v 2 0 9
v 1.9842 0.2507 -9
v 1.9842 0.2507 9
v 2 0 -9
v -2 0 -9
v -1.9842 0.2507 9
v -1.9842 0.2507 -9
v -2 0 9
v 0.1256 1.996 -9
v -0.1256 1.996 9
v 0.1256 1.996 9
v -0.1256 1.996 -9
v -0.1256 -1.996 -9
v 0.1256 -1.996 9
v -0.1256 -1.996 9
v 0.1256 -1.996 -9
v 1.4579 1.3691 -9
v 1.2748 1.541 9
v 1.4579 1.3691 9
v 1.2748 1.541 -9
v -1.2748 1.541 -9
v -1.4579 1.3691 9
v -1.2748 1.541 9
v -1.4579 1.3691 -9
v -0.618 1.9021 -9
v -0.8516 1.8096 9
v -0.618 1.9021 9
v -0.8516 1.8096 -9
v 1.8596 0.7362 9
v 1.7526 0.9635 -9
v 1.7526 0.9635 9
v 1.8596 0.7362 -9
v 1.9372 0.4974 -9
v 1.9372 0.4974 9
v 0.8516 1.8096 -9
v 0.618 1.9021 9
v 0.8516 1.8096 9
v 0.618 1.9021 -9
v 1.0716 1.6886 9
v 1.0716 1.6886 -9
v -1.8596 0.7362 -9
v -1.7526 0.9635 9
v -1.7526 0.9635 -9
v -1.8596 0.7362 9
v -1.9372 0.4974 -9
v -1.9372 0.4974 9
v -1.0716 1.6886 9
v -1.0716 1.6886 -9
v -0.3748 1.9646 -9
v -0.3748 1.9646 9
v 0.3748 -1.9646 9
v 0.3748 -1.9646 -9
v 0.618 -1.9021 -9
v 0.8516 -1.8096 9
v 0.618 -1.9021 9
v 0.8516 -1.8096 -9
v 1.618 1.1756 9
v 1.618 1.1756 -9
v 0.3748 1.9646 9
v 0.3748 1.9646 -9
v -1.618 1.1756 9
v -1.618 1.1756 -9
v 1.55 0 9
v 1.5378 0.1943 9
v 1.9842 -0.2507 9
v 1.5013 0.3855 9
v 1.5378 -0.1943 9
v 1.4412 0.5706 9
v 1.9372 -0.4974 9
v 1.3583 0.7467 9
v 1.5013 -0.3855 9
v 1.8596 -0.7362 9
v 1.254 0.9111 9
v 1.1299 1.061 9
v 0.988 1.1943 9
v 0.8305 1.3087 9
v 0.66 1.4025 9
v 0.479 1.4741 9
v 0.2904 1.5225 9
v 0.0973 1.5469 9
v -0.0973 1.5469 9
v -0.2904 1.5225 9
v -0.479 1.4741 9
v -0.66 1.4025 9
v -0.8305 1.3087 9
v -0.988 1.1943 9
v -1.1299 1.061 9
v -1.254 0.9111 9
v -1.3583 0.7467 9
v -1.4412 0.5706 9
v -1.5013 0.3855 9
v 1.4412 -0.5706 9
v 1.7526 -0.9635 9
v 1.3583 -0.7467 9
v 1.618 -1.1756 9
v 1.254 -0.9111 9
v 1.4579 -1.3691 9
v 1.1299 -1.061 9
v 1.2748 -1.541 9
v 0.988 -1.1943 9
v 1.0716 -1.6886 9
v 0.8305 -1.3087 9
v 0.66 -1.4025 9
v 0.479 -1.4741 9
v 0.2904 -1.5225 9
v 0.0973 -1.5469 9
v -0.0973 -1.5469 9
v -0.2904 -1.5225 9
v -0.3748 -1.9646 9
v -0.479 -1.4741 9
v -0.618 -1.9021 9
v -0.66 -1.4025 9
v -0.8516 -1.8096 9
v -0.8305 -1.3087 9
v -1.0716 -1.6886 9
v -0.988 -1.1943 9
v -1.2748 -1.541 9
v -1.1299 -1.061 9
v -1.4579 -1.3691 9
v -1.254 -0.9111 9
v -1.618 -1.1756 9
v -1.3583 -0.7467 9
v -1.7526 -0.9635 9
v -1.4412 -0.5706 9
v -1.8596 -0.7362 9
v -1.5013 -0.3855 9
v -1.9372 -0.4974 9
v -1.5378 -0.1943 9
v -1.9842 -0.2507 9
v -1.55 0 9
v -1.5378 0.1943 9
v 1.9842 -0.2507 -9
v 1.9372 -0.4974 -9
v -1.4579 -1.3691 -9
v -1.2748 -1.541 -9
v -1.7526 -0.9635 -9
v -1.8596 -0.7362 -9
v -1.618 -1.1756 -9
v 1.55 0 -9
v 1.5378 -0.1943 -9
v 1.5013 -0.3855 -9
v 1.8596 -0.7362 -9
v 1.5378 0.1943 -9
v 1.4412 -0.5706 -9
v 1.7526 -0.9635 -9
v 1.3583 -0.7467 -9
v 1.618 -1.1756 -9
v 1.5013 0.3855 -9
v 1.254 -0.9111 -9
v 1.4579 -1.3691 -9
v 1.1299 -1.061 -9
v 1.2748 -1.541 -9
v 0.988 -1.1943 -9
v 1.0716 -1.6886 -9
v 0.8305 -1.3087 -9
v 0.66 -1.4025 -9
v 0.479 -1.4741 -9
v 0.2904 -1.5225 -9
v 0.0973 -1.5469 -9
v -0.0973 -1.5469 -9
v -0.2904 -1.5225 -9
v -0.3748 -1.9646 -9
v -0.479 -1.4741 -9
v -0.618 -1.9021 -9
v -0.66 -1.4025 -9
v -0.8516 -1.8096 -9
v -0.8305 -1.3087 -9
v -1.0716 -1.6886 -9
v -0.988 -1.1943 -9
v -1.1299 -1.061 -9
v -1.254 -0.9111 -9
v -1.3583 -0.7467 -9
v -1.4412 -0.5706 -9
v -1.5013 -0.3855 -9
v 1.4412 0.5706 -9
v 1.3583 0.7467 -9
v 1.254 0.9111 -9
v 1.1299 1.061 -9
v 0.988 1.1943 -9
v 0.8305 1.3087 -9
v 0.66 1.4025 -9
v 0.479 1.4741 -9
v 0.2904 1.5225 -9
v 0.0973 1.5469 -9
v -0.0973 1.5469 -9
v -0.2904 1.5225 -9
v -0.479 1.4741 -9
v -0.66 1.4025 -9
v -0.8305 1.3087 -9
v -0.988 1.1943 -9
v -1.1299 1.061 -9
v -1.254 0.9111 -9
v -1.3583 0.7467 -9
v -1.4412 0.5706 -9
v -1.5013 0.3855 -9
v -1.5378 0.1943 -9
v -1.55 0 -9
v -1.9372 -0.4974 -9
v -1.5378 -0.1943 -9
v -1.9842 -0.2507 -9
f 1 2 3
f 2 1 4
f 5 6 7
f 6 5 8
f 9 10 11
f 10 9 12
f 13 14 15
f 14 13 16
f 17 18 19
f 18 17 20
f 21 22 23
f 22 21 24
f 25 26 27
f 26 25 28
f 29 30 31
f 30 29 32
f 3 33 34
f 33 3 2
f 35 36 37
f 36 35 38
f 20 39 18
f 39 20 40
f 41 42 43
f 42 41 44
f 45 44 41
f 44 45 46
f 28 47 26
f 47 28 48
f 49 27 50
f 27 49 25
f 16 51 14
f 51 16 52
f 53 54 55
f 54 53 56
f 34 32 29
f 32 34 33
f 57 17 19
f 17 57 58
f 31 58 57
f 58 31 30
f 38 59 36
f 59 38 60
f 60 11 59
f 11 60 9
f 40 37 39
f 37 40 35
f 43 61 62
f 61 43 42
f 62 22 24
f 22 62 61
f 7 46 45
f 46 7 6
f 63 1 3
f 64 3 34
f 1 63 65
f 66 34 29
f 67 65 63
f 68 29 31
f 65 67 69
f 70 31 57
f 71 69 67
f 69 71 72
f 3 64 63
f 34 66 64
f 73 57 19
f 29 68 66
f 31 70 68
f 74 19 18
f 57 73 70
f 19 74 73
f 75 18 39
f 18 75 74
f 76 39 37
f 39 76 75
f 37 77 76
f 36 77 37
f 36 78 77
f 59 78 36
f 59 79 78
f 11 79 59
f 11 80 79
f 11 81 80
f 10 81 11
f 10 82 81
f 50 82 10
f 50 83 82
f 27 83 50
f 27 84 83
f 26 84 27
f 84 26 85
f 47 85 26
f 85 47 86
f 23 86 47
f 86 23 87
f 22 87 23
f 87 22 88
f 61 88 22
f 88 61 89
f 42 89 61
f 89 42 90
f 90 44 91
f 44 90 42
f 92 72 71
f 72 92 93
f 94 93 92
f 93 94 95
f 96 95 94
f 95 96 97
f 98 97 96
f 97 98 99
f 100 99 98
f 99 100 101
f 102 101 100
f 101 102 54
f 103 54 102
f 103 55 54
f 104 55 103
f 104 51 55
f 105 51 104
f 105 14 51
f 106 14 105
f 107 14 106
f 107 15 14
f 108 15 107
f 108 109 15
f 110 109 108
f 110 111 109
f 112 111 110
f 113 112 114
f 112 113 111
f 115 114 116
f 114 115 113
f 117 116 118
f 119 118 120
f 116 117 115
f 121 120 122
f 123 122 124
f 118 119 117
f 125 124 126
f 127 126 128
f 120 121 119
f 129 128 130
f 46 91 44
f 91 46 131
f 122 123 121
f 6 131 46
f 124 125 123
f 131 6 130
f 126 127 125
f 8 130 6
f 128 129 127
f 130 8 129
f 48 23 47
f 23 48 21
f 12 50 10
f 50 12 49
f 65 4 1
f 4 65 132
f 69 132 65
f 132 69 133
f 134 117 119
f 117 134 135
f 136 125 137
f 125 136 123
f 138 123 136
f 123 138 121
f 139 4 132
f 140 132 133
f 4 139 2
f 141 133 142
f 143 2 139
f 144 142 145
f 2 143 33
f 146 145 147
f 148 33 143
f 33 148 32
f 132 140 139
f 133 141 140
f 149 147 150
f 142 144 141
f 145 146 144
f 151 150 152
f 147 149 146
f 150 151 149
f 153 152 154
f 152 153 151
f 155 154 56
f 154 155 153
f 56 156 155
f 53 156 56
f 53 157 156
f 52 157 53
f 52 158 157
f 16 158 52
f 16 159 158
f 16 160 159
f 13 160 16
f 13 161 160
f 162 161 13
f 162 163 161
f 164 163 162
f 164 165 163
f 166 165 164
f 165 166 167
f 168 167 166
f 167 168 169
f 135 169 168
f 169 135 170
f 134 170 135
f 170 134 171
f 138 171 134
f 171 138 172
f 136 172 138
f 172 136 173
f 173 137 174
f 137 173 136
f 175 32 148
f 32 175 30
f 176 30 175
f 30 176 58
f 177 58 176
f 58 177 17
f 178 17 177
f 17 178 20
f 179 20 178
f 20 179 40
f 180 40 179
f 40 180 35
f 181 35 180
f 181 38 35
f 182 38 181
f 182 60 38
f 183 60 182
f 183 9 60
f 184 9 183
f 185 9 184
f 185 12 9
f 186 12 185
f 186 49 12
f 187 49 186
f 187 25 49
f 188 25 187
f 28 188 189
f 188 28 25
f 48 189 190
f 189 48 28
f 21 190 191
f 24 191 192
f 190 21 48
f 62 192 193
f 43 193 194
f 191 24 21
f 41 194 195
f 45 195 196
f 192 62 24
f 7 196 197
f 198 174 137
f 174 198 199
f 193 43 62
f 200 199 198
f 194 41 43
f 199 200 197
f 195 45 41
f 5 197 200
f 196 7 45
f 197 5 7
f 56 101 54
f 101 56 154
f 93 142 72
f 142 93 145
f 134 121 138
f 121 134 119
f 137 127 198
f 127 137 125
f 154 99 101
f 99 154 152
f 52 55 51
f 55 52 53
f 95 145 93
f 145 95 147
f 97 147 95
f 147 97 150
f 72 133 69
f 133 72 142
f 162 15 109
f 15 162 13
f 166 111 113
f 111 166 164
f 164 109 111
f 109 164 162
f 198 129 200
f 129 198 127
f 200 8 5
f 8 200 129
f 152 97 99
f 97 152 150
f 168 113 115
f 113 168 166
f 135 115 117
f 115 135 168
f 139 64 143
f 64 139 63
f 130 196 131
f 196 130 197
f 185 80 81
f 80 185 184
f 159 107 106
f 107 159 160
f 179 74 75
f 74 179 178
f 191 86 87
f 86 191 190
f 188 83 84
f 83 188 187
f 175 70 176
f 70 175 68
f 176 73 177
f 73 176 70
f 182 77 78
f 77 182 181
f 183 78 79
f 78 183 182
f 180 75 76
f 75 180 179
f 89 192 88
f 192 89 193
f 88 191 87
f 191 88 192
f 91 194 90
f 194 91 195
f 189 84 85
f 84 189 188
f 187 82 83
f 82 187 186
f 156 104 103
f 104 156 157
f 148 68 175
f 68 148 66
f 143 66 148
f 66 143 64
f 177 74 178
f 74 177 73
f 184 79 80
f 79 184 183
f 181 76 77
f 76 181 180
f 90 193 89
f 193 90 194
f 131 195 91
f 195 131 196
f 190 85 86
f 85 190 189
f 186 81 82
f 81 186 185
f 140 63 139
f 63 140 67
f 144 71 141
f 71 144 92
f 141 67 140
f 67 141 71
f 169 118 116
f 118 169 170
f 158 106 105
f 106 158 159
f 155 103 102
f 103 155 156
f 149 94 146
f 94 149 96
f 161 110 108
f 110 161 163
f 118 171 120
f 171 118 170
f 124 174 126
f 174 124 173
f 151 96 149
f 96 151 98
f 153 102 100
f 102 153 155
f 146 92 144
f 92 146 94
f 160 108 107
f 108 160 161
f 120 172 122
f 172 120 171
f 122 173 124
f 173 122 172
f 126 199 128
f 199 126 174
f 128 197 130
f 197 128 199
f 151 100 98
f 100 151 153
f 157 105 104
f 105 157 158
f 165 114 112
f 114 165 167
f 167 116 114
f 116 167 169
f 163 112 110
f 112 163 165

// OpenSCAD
$fn = 50;


difference() {
	union() {
		translate(v = [0, 0, -9.0000000000]) {
			cylinder(h = 18, r = 2.0000000000);
		}
	}
	union() {
		translate(v = [0, 0, -100.0000000000]) {
			cylinder(h = 200, r = 1.5500000000);
		}
	}
}
